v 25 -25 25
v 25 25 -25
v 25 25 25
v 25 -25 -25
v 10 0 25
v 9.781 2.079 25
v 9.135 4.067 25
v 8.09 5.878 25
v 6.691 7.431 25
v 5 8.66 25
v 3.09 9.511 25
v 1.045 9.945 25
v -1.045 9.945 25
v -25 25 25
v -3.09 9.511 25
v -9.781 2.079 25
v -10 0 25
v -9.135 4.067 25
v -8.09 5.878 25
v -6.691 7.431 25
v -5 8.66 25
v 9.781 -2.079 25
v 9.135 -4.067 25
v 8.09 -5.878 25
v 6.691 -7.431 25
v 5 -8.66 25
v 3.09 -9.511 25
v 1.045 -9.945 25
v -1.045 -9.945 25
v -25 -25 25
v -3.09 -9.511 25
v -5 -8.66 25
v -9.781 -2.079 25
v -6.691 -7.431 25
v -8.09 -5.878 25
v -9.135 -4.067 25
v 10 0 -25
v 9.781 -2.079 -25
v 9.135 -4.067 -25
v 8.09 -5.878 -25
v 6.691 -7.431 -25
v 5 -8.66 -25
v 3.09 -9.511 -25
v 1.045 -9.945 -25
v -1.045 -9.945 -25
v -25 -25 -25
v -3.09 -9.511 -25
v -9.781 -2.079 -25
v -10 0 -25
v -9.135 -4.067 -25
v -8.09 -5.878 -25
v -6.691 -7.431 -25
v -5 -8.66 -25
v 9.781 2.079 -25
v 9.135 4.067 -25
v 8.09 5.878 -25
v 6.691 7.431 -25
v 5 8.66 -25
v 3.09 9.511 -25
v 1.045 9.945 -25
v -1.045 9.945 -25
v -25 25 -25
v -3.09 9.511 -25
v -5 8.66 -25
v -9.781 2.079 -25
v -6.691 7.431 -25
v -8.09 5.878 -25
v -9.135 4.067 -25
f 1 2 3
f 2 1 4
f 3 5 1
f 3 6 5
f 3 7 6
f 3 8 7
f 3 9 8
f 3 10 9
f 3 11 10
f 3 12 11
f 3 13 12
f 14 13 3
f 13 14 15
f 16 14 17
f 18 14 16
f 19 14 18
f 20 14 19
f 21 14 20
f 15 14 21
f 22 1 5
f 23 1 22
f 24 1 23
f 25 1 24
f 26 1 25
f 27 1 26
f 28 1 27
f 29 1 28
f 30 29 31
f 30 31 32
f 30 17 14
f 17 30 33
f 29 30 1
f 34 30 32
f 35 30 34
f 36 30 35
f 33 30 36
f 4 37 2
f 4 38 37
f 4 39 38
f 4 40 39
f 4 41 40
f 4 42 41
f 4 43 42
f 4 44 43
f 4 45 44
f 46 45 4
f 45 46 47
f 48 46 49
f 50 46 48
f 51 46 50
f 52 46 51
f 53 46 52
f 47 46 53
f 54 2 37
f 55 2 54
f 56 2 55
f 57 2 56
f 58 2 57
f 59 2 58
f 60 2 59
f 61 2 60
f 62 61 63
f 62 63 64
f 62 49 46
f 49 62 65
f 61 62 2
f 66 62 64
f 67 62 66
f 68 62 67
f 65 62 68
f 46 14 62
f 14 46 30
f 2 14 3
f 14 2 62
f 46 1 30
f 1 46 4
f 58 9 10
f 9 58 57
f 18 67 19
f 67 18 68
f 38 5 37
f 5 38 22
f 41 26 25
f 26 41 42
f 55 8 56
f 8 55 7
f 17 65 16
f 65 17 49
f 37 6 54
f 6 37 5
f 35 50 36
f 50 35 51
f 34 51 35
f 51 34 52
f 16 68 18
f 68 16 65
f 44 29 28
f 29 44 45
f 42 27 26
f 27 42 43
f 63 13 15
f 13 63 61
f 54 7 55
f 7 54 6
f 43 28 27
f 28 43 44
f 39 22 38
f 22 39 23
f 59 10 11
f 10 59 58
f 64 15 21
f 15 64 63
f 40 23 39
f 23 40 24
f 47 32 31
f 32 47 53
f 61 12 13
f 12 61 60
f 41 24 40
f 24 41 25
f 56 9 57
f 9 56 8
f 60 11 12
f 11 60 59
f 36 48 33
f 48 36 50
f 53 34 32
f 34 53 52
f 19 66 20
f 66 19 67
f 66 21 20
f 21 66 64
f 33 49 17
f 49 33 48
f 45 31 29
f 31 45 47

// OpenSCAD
// Parameters
cube_size = 50; // Size of the cube (length of each side)
hole_diameter = 20; // Diameter of the cylindrical hole

// Main module
module cube_block() {
    // Create the cube
    difference() {
        cube([cube_size, cube_size, cube_size], center=true); // Centered cube
        // Create the cylindrical hole
        translate([0, 0, 0]) // Ensure the cylinder is perfectly centered
        rotate([0, 0, 0]) // Ensure no rotation or skewing
        cylinder(h=cube_size, d=hole_diameter, center=true); // Centered cylinder
    }
}

// Render the cube block
cube_block();
